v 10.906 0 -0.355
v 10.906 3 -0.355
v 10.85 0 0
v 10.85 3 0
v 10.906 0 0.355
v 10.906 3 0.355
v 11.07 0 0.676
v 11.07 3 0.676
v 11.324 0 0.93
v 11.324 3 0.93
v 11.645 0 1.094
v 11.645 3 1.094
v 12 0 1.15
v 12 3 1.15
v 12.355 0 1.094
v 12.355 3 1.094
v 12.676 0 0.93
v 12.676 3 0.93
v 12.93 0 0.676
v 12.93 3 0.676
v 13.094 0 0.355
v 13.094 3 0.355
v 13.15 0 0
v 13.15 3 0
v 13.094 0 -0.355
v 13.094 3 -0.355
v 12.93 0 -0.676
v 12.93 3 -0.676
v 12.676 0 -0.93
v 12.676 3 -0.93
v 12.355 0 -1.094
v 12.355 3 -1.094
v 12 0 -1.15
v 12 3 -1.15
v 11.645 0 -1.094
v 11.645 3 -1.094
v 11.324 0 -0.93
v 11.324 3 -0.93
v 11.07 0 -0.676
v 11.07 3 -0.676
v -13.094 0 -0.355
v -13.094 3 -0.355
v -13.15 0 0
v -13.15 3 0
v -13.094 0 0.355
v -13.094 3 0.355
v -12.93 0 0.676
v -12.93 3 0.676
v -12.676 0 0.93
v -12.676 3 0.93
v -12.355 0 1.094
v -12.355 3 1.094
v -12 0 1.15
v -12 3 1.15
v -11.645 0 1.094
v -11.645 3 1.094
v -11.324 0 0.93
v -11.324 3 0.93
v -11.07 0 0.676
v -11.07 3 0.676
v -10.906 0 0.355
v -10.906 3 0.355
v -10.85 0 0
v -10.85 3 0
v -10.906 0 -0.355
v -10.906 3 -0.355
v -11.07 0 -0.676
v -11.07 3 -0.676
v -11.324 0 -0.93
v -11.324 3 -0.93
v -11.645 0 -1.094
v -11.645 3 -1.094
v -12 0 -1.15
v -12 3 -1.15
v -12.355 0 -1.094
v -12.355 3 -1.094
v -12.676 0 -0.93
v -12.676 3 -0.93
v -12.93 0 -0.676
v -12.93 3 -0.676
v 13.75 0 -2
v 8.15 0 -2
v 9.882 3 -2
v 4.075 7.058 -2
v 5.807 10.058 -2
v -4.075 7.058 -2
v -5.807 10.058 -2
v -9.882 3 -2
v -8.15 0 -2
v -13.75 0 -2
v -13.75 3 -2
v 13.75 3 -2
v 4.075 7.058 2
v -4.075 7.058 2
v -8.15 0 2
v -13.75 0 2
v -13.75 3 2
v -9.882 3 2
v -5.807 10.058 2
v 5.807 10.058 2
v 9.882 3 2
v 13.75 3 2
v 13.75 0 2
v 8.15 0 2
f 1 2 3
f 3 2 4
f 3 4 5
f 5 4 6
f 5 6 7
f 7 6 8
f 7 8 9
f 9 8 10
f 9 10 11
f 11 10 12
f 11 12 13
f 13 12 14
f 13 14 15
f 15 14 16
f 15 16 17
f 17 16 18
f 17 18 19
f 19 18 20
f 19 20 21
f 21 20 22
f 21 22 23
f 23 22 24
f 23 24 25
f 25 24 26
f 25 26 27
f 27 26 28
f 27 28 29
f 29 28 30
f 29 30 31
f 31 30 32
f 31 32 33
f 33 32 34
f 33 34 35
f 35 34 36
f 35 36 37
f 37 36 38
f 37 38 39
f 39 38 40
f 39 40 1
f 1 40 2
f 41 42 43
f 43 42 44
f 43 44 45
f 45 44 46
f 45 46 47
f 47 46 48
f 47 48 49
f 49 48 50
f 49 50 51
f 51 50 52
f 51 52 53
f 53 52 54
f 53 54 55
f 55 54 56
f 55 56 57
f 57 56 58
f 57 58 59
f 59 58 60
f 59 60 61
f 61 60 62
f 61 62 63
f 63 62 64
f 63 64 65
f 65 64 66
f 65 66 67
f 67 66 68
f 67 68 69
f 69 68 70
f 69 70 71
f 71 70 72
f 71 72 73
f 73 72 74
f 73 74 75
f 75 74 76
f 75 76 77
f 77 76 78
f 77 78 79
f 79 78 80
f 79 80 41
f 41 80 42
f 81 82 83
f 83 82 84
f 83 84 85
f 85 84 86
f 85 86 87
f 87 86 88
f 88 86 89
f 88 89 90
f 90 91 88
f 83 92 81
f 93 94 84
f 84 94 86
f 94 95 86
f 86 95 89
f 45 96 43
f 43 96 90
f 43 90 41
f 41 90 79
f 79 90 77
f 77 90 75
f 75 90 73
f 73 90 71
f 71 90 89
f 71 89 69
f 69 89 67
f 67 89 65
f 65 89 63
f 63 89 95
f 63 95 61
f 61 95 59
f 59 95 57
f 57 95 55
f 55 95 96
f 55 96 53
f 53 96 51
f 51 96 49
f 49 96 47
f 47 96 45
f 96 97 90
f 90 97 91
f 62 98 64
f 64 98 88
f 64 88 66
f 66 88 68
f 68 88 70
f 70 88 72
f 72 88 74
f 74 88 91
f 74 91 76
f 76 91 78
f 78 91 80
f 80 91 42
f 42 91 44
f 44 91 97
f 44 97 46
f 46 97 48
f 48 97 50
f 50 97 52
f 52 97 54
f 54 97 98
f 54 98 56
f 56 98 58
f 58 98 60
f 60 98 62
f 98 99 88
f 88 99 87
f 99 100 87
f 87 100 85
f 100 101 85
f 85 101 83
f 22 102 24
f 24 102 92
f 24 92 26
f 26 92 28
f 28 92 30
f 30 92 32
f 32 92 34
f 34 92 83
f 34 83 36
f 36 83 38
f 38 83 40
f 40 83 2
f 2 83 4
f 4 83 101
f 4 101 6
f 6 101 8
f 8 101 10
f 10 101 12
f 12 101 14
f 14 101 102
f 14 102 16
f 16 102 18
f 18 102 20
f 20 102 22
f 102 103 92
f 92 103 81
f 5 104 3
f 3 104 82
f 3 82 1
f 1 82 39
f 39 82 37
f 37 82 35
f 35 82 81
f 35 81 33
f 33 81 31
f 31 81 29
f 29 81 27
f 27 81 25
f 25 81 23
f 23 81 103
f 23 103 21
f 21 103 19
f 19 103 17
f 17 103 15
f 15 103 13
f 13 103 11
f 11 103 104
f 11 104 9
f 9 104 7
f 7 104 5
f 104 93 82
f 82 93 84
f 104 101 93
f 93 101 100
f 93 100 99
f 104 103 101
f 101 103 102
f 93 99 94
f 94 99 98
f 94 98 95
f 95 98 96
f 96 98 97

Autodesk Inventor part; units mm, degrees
ref_plane "YZ Plane" through (0, 0, 0) normal (1, 0, 0) x (0, 1, 0)
ref_plane "XZ Plane" through (0, 0, 0) normal (0, 1, 0) x (-1, 0, 0)
ref_plane "XY Plane" through (0, 0, 0) normal (0, 0, 1) x (1, 0, 0)
sketch "스케치1" plane through (0, 0, 0) normal (0, 0, 1) x (1, 0, 0)
  line L0 (-13.75, 0) -> (13.75, 0)
  line L1 (-8.15, 0) -> (-4.075, 7.0581)
  line L2 (-4.075, 7.0581) -> (4.075, 7.0581)
  line L3 (4.075, 7.0581) -> (8.15, 0)
  line L4 (8.15, 0) -> (4.075, -7.0581)
  line L5 (4.075, -7.0581) -> (-4.075, -7.0581)
  line L6 (-4.075, -7.0581) -> (-8.15, 0)
  line L7 (-5.8071, 10.0581) -> (-11.6141, 0)
  line L8 (-11.6141, 0) -> (-5.8071, -10.0581)
  line L9 (-5.8071, -10.0581) -> (5.8071, -10.0581)
  line L10 (5.8071, -10.0581) -> (11.6141, 0)
  line L11 (11.6141, 0) -> (5.8071, 10.0581)
  line L12 (5.8071, 10.0581) -> (-5.8071, 10.0581)
  line L13 (-13.75, 0) -> (-13.75, 3)
  line L14 (-13.75, 3) -> (-9.8821, 3)
  line L15 (13.75, 0) -> (13.75, 3)
  line L16 (13.75, 3) -> (9.8821, 3)
  point P0 (0, 0)
  point P1 (0, 0)
  point P2 (0, 0)
  point P3 (8.15, 0)
  dimension "d0" = 27.5
  dimension "d1" = 16.3
  dimension "d2" = 3
  dimension "d3" = 3
  dimension "d4" = 3
extrude "돌출1" add sketch "스케치1" along normal mid plane 4 contours L13 L14 L7 L0 | L7 L12 L11 L0 L3 L2 L1 | L11 L16 L15 L0
sketch "스케치2" plane through (-13.75, 3, 2) normal (0, 1, 0) x (1, 0, 0)
  line L0 (1.75, -6.7825) -> (25.75, -6.7825)
  line L1 (25.75, -6.7825) -> (25.75, 6.7825) construction
  line L2 (25.75, 6.7825) -> (1.75, 6.7825)
  line L3 (1.75, 6.7825) -> (1.75, -6.7825) construction
  line L4 (9.675, 0) -> (17.825, 0) projected
  line L5 (1.75, -6.7825) -> (25.75, 6.7825) construction
  line L6 (25.75, -6.7825) -> (1.75, 6.7825) construction
  circle A0 centre (1.75, 2) radius 1.15
  circle A1 centre (25.75, 2) radius 1.15
  line L7 (0, 4) -> (3.8679, 4) projected
  point P0 (13.75, 2)
  point P1 (13.75, 0)
  dimension "d7" = 24
  dimension "d8" = 2.3
  dimension "d9" = 2.3
  dimension "d10" = 2
extrude "돌출2" cut sketch "스케치2" against normal blind 4
properties part number "카스벨브 하단 커버"
